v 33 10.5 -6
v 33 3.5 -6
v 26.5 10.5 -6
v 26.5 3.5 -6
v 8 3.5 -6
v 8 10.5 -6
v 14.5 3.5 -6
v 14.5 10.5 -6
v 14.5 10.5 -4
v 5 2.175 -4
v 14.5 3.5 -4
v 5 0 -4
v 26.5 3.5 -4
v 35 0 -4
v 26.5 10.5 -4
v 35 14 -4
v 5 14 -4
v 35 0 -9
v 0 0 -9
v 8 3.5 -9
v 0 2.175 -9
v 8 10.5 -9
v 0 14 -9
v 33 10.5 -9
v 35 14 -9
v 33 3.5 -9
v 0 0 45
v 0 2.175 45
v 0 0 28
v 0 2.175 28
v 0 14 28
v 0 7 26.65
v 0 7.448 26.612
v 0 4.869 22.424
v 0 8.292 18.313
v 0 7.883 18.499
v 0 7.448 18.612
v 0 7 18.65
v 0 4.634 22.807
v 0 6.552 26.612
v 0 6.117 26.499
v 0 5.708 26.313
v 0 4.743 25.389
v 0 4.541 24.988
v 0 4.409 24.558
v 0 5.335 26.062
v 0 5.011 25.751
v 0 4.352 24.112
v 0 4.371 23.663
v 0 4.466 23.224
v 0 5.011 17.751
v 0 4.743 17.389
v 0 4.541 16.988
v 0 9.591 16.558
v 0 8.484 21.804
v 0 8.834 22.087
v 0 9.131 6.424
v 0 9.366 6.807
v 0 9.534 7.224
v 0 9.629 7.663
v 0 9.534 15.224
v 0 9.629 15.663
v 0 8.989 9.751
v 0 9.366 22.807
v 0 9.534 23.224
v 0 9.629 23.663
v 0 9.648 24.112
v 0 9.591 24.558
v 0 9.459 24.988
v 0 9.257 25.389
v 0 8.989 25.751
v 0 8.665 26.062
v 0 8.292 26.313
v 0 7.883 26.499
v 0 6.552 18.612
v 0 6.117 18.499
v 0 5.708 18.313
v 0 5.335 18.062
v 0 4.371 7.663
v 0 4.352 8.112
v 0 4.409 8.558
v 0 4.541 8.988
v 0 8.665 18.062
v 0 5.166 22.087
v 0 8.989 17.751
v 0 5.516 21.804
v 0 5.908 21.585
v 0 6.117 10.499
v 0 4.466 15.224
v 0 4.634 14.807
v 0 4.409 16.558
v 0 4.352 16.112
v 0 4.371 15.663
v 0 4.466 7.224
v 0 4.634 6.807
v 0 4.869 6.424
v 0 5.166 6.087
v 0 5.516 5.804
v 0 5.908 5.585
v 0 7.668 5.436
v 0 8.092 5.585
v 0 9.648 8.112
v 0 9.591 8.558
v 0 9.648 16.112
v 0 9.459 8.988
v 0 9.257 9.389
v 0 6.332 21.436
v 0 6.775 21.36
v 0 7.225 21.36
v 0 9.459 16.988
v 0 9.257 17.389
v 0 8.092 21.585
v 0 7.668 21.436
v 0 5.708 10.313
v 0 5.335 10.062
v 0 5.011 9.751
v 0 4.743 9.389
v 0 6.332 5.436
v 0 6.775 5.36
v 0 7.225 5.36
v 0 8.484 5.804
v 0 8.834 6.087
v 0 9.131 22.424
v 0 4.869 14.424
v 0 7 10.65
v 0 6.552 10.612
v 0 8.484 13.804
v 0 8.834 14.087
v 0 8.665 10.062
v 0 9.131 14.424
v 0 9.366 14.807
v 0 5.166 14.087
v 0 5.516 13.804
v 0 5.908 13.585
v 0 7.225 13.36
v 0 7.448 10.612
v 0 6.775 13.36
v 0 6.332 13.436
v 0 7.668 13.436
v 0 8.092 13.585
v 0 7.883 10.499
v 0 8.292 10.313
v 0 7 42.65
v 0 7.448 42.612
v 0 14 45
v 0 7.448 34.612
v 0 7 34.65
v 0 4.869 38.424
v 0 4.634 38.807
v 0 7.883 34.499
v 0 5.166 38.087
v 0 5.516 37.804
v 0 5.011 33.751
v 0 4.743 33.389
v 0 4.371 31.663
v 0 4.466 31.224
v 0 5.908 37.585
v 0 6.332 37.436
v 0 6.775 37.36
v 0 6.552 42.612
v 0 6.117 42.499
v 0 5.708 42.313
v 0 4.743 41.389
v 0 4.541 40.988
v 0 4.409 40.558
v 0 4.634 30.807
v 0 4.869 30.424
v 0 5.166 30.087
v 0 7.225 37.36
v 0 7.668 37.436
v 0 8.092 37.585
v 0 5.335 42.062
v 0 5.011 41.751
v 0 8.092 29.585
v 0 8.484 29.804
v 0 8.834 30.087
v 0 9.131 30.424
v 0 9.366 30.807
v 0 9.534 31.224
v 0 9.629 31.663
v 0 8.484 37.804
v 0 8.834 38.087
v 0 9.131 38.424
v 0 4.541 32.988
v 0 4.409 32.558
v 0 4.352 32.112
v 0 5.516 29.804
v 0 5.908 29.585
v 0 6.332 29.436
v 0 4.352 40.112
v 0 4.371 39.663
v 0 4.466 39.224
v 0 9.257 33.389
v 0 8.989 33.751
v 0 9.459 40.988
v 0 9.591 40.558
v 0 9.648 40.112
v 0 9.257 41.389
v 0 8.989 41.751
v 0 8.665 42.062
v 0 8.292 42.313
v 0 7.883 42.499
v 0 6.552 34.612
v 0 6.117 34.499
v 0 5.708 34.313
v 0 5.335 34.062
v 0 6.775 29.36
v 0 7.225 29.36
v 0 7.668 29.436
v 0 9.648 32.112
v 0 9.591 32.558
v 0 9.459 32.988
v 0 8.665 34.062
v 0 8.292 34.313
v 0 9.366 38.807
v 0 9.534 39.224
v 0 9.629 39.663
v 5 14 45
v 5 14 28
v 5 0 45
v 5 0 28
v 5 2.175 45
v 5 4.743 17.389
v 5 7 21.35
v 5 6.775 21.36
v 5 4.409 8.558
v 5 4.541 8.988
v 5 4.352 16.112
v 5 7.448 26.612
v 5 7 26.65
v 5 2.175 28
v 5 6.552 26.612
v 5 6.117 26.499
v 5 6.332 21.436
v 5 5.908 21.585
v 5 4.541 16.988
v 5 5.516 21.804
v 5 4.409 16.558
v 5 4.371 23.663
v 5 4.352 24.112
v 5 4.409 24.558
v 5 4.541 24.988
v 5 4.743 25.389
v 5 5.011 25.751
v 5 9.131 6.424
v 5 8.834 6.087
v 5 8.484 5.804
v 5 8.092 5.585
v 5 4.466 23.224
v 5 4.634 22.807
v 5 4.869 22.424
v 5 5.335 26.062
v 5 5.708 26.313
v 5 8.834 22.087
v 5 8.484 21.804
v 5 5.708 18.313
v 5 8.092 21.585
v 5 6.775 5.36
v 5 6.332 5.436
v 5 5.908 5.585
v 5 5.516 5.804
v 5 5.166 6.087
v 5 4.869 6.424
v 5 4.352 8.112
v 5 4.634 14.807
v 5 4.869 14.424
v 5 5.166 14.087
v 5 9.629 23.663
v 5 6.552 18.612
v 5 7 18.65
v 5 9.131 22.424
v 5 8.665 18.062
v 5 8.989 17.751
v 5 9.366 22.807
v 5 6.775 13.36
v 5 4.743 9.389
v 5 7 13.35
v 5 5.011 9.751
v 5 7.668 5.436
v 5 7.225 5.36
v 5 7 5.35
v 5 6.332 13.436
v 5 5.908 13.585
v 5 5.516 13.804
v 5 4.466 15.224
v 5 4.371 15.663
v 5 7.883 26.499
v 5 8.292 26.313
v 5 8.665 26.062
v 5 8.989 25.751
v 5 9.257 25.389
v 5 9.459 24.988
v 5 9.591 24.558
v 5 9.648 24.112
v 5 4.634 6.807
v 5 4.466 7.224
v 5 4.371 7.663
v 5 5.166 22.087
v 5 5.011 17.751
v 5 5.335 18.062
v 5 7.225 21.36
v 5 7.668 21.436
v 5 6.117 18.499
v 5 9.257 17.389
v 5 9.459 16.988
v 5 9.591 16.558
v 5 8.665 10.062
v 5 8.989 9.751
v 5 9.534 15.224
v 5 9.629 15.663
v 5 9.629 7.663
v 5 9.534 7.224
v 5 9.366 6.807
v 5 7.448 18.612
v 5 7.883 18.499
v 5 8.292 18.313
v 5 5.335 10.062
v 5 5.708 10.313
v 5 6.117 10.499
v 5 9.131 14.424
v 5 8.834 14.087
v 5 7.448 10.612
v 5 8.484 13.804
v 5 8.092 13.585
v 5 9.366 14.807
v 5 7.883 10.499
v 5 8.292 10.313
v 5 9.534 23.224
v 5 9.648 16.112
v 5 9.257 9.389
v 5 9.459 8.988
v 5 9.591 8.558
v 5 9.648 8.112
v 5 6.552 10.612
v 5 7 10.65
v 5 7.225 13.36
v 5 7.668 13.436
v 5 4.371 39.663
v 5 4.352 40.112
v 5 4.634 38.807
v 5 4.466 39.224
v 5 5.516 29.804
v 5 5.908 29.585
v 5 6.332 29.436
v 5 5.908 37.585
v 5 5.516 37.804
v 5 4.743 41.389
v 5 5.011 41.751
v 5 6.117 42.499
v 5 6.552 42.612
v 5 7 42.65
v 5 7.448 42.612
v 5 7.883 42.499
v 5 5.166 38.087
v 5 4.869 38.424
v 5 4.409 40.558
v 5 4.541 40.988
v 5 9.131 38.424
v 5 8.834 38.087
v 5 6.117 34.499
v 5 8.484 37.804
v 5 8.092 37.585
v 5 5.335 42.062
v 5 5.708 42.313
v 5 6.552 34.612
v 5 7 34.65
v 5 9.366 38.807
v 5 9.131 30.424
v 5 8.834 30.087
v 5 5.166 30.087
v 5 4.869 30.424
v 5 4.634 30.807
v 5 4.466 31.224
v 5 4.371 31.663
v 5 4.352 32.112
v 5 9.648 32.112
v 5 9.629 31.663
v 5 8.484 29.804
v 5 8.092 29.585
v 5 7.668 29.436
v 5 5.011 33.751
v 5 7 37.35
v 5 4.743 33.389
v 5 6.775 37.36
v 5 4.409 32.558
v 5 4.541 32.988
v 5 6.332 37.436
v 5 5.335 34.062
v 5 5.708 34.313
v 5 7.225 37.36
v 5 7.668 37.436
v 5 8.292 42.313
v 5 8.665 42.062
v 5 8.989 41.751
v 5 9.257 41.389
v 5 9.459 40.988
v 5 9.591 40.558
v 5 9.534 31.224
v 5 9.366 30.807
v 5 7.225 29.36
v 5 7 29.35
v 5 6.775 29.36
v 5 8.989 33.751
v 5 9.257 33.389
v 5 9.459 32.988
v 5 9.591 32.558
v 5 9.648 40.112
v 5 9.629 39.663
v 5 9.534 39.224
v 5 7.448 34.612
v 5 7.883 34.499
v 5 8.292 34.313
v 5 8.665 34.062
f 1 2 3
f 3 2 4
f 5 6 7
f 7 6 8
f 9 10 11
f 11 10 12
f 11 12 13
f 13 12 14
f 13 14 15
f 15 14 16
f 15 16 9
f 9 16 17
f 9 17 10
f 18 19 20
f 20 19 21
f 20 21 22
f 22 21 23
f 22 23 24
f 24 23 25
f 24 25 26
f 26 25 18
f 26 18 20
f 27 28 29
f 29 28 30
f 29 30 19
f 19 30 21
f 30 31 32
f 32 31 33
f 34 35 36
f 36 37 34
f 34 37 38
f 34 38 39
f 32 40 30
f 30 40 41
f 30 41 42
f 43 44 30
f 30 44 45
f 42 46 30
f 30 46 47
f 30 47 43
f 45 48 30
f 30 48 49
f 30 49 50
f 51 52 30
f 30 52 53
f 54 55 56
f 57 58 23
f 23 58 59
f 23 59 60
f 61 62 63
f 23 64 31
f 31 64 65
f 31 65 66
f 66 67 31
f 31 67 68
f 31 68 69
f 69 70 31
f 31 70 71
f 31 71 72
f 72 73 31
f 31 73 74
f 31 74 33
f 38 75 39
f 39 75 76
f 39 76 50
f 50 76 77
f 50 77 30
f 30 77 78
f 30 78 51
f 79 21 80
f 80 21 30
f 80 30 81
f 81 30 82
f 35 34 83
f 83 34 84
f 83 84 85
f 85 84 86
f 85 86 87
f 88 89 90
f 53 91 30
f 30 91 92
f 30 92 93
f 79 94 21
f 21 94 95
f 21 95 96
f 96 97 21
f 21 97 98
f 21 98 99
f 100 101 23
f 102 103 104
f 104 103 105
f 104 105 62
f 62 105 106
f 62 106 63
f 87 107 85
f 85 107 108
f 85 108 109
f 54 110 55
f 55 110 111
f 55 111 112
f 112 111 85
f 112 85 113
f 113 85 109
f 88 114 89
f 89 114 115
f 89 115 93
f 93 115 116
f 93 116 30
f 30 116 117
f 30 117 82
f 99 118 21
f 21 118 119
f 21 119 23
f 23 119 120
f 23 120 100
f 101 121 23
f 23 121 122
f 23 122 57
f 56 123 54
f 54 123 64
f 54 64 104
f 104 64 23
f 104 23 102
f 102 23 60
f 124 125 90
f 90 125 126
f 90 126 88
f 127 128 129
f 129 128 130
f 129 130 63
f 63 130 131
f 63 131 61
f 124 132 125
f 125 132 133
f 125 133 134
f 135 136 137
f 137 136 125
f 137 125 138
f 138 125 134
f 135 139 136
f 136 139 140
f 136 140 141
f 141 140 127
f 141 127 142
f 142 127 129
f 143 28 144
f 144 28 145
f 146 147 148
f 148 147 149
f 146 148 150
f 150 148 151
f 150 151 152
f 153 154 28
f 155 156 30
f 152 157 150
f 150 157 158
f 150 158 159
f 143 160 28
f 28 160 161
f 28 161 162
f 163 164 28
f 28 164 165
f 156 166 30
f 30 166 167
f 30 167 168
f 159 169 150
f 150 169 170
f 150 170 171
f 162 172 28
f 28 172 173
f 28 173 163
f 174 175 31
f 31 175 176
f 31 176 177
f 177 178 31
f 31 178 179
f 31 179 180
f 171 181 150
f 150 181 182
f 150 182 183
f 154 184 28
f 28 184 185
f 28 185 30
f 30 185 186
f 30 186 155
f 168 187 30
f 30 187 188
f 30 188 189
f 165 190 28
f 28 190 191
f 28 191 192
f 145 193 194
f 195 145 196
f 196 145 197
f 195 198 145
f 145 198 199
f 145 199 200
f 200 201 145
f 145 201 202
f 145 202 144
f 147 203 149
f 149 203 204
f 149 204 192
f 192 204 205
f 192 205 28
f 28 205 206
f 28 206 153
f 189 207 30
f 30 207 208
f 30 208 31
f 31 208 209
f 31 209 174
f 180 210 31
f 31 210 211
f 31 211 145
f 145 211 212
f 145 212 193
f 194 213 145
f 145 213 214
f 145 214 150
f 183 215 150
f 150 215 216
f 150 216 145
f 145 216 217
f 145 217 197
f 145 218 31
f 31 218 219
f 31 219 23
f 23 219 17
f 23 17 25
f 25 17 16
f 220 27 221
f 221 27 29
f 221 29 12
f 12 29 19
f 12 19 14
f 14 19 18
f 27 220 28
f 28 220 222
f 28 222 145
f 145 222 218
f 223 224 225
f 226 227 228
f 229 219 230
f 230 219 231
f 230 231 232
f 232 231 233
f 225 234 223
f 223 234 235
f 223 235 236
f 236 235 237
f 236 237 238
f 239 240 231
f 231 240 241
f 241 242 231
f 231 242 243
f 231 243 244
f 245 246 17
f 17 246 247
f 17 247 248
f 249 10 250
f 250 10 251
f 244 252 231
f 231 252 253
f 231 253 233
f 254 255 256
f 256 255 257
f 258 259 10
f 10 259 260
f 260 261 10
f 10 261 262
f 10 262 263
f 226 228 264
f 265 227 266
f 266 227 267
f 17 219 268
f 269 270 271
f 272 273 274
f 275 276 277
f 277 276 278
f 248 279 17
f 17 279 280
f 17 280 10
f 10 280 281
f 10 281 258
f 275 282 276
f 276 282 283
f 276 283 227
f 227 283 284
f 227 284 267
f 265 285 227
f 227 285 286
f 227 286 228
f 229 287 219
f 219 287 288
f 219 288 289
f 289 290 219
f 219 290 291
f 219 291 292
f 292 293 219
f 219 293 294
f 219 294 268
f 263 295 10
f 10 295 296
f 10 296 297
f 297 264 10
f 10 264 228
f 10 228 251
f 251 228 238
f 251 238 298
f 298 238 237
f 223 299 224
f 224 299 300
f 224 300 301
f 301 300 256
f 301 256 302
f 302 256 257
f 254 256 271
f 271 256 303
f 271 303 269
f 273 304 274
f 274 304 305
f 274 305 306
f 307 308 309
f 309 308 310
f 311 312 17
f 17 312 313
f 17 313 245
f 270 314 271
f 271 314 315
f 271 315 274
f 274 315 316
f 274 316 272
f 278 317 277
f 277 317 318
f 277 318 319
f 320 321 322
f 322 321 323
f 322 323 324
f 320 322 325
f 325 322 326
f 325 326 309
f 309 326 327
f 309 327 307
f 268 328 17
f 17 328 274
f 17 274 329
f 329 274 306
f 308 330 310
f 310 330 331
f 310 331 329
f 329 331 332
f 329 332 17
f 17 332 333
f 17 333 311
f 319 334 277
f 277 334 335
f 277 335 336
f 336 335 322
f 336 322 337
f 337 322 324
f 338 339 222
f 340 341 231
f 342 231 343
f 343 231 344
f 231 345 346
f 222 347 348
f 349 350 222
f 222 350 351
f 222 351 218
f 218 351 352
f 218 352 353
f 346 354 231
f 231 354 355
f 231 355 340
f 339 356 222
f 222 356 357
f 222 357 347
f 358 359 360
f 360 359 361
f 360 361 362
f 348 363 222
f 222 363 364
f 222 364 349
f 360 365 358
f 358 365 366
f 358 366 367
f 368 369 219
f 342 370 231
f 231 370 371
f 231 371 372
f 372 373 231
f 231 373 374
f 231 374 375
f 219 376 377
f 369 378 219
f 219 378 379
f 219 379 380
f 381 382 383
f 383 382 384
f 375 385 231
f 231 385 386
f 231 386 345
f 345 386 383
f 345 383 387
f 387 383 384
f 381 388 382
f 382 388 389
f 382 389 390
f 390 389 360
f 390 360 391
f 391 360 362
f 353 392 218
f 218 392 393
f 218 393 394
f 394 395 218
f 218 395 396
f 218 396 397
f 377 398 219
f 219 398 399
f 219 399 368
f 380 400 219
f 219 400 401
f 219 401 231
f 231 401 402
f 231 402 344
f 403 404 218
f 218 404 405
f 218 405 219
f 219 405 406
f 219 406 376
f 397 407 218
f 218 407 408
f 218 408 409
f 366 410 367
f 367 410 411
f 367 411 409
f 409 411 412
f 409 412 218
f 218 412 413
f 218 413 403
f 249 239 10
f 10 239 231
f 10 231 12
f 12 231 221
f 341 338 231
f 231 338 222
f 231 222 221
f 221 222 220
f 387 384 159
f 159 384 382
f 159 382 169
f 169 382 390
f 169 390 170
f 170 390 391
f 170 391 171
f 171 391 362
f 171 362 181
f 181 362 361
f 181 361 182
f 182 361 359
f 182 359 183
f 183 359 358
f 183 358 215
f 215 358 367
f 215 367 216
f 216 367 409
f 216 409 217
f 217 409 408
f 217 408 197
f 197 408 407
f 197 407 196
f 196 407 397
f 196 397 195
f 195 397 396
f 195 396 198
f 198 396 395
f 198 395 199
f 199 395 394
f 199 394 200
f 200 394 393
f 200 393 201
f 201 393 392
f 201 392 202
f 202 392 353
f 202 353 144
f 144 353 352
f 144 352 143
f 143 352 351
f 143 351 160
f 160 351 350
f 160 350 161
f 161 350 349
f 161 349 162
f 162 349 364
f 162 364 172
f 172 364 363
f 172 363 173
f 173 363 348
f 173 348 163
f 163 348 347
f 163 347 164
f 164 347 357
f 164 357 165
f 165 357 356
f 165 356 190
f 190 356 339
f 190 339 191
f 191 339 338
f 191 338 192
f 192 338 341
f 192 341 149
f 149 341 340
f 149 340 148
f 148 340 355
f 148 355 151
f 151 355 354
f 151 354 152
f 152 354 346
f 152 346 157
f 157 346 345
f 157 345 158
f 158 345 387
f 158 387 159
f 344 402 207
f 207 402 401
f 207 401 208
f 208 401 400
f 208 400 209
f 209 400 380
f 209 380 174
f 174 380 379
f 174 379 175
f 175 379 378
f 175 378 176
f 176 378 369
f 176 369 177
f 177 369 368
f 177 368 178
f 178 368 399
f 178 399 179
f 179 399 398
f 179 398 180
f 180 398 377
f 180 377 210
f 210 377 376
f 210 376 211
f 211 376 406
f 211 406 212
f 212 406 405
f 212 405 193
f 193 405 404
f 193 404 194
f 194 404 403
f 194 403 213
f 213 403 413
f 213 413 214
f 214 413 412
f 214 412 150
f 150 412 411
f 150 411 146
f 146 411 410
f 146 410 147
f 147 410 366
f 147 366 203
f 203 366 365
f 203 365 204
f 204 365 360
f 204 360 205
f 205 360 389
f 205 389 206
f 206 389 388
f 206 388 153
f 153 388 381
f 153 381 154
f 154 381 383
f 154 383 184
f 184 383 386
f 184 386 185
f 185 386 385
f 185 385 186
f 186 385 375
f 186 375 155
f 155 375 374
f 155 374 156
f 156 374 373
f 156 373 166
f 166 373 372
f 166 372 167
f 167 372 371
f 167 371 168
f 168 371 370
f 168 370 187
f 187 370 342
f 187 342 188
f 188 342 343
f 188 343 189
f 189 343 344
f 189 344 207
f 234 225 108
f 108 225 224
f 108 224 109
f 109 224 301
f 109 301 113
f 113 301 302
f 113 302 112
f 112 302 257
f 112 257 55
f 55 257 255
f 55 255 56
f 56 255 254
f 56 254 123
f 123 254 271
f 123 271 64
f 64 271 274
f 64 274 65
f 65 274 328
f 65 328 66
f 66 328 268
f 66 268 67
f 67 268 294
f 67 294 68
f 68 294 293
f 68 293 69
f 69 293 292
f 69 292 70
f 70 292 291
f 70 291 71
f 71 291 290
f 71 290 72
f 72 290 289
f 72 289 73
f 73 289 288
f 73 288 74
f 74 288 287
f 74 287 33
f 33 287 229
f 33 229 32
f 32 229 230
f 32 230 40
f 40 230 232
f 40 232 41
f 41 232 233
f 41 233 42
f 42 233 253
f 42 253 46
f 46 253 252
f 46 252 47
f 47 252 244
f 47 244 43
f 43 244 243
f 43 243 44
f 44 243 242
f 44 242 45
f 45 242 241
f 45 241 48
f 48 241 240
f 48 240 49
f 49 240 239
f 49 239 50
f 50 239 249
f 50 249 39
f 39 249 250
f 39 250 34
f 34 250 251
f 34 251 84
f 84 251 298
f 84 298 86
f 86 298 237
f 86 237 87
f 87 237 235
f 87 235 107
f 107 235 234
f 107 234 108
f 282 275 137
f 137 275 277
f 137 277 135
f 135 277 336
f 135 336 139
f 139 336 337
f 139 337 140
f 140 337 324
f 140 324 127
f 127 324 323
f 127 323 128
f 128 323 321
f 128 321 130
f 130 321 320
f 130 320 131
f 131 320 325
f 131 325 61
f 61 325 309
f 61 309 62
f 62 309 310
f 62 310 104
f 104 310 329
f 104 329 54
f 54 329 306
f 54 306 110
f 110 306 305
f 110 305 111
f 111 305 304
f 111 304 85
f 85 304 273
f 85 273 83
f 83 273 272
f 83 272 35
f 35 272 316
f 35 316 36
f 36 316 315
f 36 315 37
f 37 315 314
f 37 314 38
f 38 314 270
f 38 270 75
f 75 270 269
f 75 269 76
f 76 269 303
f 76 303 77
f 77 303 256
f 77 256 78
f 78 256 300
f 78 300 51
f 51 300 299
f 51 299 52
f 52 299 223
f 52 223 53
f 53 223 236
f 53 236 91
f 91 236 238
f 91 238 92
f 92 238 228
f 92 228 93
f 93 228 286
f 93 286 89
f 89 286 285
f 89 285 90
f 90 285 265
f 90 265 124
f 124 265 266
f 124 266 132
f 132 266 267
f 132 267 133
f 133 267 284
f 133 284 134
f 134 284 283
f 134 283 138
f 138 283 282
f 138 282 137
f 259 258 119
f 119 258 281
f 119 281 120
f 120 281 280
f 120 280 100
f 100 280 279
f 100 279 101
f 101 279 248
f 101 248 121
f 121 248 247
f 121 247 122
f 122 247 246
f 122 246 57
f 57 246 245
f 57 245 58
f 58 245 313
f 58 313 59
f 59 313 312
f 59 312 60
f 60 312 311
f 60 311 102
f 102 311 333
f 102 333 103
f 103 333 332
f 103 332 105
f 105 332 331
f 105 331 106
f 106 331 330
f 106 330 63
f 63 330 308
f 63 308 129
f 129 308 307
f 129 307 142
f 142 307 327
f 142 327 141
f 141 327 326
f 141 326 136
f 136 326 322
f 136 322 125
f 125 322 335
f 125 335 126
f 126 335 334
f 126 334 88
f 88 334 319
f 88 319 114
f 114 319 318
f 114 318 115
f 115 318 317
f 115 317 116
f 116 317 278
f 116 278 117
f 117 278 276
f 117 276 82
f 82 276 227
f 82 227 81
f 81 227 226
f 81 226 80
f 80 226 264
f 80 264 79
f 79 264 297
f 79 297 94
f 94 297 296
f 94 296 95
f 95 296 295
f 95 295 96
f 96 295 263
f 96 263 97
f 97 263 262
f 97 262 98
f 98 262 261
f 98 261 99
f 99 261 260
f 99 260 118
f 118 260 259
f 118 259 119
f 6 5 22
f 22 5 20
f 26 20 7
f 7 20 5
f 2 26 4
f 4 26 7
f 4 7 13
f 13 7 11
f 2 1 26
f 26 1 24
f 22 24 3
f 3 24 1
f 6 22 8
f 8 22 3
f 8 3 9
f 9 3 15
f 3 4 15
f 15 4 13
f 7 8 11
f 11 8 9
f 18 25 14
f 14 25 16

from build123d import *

# Parameters (mm, degrees)
BOSS_EXTRUDE1_DEPTH  = 14
SKETCH20_W           = 45
SKETCH20_H           = 14
BOSS_EXTRUDE10_DEPTH = 5
SKETCH21_R           = 2.65
CUT_EXTRUDE13_DEPTH  = 5
SKETCH22_W           = 5
SKETCH22_H           = 4
CUT_EXTRUDE14_DEPTH  = 62.814237842
SKETCH23_R           = 2.65
BOSS_EXTRUDE11_DEPTH = 5
SKETCH24_W           = 25
SKETCH24_H           = 7
CUT_EXTRUDE15_DEPTH  = 3
CUT_EXTRUDE16_REACH  = 68.31
SKETCH25_W           = 12
SKETCH25_H           = 7
CUT_EXTRUDE17_REACH  = 70.644
SKETCH26_W           = 5
SKETCH26_H           = 14


with BuildPart() as part:
    # Sketch1 → Boss-Extrude1 (new body)
    with BuildSketch(Plane(origin=(0, 0, 0), x_dir=(1, 0, 0), z_dir=(0, 1, 0))):
        Polygon((6.589095597, 0), (10, 0), (10, 4), (40, 4), (40, 9), (11.589095597, 9), (0, 9), (0, 0), align=None)
    extrude(amount=BOSS_EXTRUDE1_DEPTH)

    # Sketch20 → Boss-Extrude10 (add)
    with BuildSketch(Plane.ZY):
        with Locations((22.5, 7)):
            Rectangle(SKETCH20_W, SKETCH20_H)
    extrude(amount=-BOSS_EXTRUDE10_DEPTH)

    # Sketch21 → Cut-Extrude13 (cut)
    with BuildSketch(Plane.ZY):
        with Locations((0, 7)):
            Circle(SKETCH21_R)
        with Locations((8, 7)):
            Circle(SKETCH21_R)
        with Locations((16, 7)):
            Circle(SKETCH21_R)
        with Locations((24, 7)):
            Circle(SKETCH21_R)
        with Locations((32, 7)):
            Circle(SKETCH21_R)
        with Locations((40, 7)):
            Circle(SKETCH21_R)
    extrude(amount=-CUT_EXTRUDE13_DEPTH, mode=Mode.SUBTRACT)

    # Sketch22 → Cut-Extrude14 (cut, through all)
    with BuildSketch(Plane(origin=(0, 14, 0), x_dir=(1, 0, 0), z_dir=(0, 1, 0))):
        with Locations((7.5, 2)):
            Rectangle(SKETCH22_W, SKETCH22_H)
    extrude(amount=-CUT_EXTRUDE14_DEPTH, mode=Mode.SUBTRACT)

    # Sketch23 → Boss-Extrude11 (add)
    with BuildSketch(Plane.ZY):
        with Locations((0, 7)):
            Circle(SKETCH23_R)
    extrude(amount=-BOSS_EXTRUDE11_DEPTH)

    # Sketch24 → Cut-Extrude15 (cut)
    with BuildSketch(Plane(origin=(0, 0, -9), x_dir=(-1, 0, 0), z_dir=(0, 0, -1))):
        with Locations((-20.5, 7)):
            Rectangle(SKETCH24_W, SKETCH24_H)
    extrude(amount=-CUT_EXTRUDE15_DEPTH, mode=Mode.SUBTRACT)

    # Sketch25 → Cut-Extrude16 (cut, up to next)
    with BuildSketch(Plane(origin=(0, 0, -6), x_dir=(-1, 0, 0), z_dir=(0, 0, -1)), mode=Mode.PRIVATE) as cut_extrude16_sk1:
        with Locations((-20.5, 7)):
            Rectangle(SKETCH25_W, SKETCH25_H)
    cut_extrude16_tool1 = extrude(cut_extrude16_sk1.sketch, amount=-CUT_EXTRUDE16_REACH, mode=Mode.PRIVATE) & part.part
    add(cut_extrude16_tool1.solids().sort_by_distance((20.5, 7, -6))[0], mode=Mode.SUBTRACT)

    # Sketch26 → Cut-Extrude17 (cut, up to next)
    with BuildSketch(Plane(origin=(0, 0, -9), x_dir=(-1, 0, 0), z_dir=(0, 0, -1)), mode=Mode.PRIVATE) as cut_extrude17_sk1:
        with Locations((-37.5, 7)):
            Rectangle(SKETCH26_W, SKETCH26_H)
    cut_extrude17_tool1 = extrude(cut_extrude17_sk1.sketch, amount=-CUT_EXTRUDE17_REACH, mode=Mode.PRIVATE) & part.part
    add(cut_extrude17_tool1.solids().sort_by_distance((37.5, 7, -9))[0], mode=Mode.SUBTRACT)


solid = part.part
